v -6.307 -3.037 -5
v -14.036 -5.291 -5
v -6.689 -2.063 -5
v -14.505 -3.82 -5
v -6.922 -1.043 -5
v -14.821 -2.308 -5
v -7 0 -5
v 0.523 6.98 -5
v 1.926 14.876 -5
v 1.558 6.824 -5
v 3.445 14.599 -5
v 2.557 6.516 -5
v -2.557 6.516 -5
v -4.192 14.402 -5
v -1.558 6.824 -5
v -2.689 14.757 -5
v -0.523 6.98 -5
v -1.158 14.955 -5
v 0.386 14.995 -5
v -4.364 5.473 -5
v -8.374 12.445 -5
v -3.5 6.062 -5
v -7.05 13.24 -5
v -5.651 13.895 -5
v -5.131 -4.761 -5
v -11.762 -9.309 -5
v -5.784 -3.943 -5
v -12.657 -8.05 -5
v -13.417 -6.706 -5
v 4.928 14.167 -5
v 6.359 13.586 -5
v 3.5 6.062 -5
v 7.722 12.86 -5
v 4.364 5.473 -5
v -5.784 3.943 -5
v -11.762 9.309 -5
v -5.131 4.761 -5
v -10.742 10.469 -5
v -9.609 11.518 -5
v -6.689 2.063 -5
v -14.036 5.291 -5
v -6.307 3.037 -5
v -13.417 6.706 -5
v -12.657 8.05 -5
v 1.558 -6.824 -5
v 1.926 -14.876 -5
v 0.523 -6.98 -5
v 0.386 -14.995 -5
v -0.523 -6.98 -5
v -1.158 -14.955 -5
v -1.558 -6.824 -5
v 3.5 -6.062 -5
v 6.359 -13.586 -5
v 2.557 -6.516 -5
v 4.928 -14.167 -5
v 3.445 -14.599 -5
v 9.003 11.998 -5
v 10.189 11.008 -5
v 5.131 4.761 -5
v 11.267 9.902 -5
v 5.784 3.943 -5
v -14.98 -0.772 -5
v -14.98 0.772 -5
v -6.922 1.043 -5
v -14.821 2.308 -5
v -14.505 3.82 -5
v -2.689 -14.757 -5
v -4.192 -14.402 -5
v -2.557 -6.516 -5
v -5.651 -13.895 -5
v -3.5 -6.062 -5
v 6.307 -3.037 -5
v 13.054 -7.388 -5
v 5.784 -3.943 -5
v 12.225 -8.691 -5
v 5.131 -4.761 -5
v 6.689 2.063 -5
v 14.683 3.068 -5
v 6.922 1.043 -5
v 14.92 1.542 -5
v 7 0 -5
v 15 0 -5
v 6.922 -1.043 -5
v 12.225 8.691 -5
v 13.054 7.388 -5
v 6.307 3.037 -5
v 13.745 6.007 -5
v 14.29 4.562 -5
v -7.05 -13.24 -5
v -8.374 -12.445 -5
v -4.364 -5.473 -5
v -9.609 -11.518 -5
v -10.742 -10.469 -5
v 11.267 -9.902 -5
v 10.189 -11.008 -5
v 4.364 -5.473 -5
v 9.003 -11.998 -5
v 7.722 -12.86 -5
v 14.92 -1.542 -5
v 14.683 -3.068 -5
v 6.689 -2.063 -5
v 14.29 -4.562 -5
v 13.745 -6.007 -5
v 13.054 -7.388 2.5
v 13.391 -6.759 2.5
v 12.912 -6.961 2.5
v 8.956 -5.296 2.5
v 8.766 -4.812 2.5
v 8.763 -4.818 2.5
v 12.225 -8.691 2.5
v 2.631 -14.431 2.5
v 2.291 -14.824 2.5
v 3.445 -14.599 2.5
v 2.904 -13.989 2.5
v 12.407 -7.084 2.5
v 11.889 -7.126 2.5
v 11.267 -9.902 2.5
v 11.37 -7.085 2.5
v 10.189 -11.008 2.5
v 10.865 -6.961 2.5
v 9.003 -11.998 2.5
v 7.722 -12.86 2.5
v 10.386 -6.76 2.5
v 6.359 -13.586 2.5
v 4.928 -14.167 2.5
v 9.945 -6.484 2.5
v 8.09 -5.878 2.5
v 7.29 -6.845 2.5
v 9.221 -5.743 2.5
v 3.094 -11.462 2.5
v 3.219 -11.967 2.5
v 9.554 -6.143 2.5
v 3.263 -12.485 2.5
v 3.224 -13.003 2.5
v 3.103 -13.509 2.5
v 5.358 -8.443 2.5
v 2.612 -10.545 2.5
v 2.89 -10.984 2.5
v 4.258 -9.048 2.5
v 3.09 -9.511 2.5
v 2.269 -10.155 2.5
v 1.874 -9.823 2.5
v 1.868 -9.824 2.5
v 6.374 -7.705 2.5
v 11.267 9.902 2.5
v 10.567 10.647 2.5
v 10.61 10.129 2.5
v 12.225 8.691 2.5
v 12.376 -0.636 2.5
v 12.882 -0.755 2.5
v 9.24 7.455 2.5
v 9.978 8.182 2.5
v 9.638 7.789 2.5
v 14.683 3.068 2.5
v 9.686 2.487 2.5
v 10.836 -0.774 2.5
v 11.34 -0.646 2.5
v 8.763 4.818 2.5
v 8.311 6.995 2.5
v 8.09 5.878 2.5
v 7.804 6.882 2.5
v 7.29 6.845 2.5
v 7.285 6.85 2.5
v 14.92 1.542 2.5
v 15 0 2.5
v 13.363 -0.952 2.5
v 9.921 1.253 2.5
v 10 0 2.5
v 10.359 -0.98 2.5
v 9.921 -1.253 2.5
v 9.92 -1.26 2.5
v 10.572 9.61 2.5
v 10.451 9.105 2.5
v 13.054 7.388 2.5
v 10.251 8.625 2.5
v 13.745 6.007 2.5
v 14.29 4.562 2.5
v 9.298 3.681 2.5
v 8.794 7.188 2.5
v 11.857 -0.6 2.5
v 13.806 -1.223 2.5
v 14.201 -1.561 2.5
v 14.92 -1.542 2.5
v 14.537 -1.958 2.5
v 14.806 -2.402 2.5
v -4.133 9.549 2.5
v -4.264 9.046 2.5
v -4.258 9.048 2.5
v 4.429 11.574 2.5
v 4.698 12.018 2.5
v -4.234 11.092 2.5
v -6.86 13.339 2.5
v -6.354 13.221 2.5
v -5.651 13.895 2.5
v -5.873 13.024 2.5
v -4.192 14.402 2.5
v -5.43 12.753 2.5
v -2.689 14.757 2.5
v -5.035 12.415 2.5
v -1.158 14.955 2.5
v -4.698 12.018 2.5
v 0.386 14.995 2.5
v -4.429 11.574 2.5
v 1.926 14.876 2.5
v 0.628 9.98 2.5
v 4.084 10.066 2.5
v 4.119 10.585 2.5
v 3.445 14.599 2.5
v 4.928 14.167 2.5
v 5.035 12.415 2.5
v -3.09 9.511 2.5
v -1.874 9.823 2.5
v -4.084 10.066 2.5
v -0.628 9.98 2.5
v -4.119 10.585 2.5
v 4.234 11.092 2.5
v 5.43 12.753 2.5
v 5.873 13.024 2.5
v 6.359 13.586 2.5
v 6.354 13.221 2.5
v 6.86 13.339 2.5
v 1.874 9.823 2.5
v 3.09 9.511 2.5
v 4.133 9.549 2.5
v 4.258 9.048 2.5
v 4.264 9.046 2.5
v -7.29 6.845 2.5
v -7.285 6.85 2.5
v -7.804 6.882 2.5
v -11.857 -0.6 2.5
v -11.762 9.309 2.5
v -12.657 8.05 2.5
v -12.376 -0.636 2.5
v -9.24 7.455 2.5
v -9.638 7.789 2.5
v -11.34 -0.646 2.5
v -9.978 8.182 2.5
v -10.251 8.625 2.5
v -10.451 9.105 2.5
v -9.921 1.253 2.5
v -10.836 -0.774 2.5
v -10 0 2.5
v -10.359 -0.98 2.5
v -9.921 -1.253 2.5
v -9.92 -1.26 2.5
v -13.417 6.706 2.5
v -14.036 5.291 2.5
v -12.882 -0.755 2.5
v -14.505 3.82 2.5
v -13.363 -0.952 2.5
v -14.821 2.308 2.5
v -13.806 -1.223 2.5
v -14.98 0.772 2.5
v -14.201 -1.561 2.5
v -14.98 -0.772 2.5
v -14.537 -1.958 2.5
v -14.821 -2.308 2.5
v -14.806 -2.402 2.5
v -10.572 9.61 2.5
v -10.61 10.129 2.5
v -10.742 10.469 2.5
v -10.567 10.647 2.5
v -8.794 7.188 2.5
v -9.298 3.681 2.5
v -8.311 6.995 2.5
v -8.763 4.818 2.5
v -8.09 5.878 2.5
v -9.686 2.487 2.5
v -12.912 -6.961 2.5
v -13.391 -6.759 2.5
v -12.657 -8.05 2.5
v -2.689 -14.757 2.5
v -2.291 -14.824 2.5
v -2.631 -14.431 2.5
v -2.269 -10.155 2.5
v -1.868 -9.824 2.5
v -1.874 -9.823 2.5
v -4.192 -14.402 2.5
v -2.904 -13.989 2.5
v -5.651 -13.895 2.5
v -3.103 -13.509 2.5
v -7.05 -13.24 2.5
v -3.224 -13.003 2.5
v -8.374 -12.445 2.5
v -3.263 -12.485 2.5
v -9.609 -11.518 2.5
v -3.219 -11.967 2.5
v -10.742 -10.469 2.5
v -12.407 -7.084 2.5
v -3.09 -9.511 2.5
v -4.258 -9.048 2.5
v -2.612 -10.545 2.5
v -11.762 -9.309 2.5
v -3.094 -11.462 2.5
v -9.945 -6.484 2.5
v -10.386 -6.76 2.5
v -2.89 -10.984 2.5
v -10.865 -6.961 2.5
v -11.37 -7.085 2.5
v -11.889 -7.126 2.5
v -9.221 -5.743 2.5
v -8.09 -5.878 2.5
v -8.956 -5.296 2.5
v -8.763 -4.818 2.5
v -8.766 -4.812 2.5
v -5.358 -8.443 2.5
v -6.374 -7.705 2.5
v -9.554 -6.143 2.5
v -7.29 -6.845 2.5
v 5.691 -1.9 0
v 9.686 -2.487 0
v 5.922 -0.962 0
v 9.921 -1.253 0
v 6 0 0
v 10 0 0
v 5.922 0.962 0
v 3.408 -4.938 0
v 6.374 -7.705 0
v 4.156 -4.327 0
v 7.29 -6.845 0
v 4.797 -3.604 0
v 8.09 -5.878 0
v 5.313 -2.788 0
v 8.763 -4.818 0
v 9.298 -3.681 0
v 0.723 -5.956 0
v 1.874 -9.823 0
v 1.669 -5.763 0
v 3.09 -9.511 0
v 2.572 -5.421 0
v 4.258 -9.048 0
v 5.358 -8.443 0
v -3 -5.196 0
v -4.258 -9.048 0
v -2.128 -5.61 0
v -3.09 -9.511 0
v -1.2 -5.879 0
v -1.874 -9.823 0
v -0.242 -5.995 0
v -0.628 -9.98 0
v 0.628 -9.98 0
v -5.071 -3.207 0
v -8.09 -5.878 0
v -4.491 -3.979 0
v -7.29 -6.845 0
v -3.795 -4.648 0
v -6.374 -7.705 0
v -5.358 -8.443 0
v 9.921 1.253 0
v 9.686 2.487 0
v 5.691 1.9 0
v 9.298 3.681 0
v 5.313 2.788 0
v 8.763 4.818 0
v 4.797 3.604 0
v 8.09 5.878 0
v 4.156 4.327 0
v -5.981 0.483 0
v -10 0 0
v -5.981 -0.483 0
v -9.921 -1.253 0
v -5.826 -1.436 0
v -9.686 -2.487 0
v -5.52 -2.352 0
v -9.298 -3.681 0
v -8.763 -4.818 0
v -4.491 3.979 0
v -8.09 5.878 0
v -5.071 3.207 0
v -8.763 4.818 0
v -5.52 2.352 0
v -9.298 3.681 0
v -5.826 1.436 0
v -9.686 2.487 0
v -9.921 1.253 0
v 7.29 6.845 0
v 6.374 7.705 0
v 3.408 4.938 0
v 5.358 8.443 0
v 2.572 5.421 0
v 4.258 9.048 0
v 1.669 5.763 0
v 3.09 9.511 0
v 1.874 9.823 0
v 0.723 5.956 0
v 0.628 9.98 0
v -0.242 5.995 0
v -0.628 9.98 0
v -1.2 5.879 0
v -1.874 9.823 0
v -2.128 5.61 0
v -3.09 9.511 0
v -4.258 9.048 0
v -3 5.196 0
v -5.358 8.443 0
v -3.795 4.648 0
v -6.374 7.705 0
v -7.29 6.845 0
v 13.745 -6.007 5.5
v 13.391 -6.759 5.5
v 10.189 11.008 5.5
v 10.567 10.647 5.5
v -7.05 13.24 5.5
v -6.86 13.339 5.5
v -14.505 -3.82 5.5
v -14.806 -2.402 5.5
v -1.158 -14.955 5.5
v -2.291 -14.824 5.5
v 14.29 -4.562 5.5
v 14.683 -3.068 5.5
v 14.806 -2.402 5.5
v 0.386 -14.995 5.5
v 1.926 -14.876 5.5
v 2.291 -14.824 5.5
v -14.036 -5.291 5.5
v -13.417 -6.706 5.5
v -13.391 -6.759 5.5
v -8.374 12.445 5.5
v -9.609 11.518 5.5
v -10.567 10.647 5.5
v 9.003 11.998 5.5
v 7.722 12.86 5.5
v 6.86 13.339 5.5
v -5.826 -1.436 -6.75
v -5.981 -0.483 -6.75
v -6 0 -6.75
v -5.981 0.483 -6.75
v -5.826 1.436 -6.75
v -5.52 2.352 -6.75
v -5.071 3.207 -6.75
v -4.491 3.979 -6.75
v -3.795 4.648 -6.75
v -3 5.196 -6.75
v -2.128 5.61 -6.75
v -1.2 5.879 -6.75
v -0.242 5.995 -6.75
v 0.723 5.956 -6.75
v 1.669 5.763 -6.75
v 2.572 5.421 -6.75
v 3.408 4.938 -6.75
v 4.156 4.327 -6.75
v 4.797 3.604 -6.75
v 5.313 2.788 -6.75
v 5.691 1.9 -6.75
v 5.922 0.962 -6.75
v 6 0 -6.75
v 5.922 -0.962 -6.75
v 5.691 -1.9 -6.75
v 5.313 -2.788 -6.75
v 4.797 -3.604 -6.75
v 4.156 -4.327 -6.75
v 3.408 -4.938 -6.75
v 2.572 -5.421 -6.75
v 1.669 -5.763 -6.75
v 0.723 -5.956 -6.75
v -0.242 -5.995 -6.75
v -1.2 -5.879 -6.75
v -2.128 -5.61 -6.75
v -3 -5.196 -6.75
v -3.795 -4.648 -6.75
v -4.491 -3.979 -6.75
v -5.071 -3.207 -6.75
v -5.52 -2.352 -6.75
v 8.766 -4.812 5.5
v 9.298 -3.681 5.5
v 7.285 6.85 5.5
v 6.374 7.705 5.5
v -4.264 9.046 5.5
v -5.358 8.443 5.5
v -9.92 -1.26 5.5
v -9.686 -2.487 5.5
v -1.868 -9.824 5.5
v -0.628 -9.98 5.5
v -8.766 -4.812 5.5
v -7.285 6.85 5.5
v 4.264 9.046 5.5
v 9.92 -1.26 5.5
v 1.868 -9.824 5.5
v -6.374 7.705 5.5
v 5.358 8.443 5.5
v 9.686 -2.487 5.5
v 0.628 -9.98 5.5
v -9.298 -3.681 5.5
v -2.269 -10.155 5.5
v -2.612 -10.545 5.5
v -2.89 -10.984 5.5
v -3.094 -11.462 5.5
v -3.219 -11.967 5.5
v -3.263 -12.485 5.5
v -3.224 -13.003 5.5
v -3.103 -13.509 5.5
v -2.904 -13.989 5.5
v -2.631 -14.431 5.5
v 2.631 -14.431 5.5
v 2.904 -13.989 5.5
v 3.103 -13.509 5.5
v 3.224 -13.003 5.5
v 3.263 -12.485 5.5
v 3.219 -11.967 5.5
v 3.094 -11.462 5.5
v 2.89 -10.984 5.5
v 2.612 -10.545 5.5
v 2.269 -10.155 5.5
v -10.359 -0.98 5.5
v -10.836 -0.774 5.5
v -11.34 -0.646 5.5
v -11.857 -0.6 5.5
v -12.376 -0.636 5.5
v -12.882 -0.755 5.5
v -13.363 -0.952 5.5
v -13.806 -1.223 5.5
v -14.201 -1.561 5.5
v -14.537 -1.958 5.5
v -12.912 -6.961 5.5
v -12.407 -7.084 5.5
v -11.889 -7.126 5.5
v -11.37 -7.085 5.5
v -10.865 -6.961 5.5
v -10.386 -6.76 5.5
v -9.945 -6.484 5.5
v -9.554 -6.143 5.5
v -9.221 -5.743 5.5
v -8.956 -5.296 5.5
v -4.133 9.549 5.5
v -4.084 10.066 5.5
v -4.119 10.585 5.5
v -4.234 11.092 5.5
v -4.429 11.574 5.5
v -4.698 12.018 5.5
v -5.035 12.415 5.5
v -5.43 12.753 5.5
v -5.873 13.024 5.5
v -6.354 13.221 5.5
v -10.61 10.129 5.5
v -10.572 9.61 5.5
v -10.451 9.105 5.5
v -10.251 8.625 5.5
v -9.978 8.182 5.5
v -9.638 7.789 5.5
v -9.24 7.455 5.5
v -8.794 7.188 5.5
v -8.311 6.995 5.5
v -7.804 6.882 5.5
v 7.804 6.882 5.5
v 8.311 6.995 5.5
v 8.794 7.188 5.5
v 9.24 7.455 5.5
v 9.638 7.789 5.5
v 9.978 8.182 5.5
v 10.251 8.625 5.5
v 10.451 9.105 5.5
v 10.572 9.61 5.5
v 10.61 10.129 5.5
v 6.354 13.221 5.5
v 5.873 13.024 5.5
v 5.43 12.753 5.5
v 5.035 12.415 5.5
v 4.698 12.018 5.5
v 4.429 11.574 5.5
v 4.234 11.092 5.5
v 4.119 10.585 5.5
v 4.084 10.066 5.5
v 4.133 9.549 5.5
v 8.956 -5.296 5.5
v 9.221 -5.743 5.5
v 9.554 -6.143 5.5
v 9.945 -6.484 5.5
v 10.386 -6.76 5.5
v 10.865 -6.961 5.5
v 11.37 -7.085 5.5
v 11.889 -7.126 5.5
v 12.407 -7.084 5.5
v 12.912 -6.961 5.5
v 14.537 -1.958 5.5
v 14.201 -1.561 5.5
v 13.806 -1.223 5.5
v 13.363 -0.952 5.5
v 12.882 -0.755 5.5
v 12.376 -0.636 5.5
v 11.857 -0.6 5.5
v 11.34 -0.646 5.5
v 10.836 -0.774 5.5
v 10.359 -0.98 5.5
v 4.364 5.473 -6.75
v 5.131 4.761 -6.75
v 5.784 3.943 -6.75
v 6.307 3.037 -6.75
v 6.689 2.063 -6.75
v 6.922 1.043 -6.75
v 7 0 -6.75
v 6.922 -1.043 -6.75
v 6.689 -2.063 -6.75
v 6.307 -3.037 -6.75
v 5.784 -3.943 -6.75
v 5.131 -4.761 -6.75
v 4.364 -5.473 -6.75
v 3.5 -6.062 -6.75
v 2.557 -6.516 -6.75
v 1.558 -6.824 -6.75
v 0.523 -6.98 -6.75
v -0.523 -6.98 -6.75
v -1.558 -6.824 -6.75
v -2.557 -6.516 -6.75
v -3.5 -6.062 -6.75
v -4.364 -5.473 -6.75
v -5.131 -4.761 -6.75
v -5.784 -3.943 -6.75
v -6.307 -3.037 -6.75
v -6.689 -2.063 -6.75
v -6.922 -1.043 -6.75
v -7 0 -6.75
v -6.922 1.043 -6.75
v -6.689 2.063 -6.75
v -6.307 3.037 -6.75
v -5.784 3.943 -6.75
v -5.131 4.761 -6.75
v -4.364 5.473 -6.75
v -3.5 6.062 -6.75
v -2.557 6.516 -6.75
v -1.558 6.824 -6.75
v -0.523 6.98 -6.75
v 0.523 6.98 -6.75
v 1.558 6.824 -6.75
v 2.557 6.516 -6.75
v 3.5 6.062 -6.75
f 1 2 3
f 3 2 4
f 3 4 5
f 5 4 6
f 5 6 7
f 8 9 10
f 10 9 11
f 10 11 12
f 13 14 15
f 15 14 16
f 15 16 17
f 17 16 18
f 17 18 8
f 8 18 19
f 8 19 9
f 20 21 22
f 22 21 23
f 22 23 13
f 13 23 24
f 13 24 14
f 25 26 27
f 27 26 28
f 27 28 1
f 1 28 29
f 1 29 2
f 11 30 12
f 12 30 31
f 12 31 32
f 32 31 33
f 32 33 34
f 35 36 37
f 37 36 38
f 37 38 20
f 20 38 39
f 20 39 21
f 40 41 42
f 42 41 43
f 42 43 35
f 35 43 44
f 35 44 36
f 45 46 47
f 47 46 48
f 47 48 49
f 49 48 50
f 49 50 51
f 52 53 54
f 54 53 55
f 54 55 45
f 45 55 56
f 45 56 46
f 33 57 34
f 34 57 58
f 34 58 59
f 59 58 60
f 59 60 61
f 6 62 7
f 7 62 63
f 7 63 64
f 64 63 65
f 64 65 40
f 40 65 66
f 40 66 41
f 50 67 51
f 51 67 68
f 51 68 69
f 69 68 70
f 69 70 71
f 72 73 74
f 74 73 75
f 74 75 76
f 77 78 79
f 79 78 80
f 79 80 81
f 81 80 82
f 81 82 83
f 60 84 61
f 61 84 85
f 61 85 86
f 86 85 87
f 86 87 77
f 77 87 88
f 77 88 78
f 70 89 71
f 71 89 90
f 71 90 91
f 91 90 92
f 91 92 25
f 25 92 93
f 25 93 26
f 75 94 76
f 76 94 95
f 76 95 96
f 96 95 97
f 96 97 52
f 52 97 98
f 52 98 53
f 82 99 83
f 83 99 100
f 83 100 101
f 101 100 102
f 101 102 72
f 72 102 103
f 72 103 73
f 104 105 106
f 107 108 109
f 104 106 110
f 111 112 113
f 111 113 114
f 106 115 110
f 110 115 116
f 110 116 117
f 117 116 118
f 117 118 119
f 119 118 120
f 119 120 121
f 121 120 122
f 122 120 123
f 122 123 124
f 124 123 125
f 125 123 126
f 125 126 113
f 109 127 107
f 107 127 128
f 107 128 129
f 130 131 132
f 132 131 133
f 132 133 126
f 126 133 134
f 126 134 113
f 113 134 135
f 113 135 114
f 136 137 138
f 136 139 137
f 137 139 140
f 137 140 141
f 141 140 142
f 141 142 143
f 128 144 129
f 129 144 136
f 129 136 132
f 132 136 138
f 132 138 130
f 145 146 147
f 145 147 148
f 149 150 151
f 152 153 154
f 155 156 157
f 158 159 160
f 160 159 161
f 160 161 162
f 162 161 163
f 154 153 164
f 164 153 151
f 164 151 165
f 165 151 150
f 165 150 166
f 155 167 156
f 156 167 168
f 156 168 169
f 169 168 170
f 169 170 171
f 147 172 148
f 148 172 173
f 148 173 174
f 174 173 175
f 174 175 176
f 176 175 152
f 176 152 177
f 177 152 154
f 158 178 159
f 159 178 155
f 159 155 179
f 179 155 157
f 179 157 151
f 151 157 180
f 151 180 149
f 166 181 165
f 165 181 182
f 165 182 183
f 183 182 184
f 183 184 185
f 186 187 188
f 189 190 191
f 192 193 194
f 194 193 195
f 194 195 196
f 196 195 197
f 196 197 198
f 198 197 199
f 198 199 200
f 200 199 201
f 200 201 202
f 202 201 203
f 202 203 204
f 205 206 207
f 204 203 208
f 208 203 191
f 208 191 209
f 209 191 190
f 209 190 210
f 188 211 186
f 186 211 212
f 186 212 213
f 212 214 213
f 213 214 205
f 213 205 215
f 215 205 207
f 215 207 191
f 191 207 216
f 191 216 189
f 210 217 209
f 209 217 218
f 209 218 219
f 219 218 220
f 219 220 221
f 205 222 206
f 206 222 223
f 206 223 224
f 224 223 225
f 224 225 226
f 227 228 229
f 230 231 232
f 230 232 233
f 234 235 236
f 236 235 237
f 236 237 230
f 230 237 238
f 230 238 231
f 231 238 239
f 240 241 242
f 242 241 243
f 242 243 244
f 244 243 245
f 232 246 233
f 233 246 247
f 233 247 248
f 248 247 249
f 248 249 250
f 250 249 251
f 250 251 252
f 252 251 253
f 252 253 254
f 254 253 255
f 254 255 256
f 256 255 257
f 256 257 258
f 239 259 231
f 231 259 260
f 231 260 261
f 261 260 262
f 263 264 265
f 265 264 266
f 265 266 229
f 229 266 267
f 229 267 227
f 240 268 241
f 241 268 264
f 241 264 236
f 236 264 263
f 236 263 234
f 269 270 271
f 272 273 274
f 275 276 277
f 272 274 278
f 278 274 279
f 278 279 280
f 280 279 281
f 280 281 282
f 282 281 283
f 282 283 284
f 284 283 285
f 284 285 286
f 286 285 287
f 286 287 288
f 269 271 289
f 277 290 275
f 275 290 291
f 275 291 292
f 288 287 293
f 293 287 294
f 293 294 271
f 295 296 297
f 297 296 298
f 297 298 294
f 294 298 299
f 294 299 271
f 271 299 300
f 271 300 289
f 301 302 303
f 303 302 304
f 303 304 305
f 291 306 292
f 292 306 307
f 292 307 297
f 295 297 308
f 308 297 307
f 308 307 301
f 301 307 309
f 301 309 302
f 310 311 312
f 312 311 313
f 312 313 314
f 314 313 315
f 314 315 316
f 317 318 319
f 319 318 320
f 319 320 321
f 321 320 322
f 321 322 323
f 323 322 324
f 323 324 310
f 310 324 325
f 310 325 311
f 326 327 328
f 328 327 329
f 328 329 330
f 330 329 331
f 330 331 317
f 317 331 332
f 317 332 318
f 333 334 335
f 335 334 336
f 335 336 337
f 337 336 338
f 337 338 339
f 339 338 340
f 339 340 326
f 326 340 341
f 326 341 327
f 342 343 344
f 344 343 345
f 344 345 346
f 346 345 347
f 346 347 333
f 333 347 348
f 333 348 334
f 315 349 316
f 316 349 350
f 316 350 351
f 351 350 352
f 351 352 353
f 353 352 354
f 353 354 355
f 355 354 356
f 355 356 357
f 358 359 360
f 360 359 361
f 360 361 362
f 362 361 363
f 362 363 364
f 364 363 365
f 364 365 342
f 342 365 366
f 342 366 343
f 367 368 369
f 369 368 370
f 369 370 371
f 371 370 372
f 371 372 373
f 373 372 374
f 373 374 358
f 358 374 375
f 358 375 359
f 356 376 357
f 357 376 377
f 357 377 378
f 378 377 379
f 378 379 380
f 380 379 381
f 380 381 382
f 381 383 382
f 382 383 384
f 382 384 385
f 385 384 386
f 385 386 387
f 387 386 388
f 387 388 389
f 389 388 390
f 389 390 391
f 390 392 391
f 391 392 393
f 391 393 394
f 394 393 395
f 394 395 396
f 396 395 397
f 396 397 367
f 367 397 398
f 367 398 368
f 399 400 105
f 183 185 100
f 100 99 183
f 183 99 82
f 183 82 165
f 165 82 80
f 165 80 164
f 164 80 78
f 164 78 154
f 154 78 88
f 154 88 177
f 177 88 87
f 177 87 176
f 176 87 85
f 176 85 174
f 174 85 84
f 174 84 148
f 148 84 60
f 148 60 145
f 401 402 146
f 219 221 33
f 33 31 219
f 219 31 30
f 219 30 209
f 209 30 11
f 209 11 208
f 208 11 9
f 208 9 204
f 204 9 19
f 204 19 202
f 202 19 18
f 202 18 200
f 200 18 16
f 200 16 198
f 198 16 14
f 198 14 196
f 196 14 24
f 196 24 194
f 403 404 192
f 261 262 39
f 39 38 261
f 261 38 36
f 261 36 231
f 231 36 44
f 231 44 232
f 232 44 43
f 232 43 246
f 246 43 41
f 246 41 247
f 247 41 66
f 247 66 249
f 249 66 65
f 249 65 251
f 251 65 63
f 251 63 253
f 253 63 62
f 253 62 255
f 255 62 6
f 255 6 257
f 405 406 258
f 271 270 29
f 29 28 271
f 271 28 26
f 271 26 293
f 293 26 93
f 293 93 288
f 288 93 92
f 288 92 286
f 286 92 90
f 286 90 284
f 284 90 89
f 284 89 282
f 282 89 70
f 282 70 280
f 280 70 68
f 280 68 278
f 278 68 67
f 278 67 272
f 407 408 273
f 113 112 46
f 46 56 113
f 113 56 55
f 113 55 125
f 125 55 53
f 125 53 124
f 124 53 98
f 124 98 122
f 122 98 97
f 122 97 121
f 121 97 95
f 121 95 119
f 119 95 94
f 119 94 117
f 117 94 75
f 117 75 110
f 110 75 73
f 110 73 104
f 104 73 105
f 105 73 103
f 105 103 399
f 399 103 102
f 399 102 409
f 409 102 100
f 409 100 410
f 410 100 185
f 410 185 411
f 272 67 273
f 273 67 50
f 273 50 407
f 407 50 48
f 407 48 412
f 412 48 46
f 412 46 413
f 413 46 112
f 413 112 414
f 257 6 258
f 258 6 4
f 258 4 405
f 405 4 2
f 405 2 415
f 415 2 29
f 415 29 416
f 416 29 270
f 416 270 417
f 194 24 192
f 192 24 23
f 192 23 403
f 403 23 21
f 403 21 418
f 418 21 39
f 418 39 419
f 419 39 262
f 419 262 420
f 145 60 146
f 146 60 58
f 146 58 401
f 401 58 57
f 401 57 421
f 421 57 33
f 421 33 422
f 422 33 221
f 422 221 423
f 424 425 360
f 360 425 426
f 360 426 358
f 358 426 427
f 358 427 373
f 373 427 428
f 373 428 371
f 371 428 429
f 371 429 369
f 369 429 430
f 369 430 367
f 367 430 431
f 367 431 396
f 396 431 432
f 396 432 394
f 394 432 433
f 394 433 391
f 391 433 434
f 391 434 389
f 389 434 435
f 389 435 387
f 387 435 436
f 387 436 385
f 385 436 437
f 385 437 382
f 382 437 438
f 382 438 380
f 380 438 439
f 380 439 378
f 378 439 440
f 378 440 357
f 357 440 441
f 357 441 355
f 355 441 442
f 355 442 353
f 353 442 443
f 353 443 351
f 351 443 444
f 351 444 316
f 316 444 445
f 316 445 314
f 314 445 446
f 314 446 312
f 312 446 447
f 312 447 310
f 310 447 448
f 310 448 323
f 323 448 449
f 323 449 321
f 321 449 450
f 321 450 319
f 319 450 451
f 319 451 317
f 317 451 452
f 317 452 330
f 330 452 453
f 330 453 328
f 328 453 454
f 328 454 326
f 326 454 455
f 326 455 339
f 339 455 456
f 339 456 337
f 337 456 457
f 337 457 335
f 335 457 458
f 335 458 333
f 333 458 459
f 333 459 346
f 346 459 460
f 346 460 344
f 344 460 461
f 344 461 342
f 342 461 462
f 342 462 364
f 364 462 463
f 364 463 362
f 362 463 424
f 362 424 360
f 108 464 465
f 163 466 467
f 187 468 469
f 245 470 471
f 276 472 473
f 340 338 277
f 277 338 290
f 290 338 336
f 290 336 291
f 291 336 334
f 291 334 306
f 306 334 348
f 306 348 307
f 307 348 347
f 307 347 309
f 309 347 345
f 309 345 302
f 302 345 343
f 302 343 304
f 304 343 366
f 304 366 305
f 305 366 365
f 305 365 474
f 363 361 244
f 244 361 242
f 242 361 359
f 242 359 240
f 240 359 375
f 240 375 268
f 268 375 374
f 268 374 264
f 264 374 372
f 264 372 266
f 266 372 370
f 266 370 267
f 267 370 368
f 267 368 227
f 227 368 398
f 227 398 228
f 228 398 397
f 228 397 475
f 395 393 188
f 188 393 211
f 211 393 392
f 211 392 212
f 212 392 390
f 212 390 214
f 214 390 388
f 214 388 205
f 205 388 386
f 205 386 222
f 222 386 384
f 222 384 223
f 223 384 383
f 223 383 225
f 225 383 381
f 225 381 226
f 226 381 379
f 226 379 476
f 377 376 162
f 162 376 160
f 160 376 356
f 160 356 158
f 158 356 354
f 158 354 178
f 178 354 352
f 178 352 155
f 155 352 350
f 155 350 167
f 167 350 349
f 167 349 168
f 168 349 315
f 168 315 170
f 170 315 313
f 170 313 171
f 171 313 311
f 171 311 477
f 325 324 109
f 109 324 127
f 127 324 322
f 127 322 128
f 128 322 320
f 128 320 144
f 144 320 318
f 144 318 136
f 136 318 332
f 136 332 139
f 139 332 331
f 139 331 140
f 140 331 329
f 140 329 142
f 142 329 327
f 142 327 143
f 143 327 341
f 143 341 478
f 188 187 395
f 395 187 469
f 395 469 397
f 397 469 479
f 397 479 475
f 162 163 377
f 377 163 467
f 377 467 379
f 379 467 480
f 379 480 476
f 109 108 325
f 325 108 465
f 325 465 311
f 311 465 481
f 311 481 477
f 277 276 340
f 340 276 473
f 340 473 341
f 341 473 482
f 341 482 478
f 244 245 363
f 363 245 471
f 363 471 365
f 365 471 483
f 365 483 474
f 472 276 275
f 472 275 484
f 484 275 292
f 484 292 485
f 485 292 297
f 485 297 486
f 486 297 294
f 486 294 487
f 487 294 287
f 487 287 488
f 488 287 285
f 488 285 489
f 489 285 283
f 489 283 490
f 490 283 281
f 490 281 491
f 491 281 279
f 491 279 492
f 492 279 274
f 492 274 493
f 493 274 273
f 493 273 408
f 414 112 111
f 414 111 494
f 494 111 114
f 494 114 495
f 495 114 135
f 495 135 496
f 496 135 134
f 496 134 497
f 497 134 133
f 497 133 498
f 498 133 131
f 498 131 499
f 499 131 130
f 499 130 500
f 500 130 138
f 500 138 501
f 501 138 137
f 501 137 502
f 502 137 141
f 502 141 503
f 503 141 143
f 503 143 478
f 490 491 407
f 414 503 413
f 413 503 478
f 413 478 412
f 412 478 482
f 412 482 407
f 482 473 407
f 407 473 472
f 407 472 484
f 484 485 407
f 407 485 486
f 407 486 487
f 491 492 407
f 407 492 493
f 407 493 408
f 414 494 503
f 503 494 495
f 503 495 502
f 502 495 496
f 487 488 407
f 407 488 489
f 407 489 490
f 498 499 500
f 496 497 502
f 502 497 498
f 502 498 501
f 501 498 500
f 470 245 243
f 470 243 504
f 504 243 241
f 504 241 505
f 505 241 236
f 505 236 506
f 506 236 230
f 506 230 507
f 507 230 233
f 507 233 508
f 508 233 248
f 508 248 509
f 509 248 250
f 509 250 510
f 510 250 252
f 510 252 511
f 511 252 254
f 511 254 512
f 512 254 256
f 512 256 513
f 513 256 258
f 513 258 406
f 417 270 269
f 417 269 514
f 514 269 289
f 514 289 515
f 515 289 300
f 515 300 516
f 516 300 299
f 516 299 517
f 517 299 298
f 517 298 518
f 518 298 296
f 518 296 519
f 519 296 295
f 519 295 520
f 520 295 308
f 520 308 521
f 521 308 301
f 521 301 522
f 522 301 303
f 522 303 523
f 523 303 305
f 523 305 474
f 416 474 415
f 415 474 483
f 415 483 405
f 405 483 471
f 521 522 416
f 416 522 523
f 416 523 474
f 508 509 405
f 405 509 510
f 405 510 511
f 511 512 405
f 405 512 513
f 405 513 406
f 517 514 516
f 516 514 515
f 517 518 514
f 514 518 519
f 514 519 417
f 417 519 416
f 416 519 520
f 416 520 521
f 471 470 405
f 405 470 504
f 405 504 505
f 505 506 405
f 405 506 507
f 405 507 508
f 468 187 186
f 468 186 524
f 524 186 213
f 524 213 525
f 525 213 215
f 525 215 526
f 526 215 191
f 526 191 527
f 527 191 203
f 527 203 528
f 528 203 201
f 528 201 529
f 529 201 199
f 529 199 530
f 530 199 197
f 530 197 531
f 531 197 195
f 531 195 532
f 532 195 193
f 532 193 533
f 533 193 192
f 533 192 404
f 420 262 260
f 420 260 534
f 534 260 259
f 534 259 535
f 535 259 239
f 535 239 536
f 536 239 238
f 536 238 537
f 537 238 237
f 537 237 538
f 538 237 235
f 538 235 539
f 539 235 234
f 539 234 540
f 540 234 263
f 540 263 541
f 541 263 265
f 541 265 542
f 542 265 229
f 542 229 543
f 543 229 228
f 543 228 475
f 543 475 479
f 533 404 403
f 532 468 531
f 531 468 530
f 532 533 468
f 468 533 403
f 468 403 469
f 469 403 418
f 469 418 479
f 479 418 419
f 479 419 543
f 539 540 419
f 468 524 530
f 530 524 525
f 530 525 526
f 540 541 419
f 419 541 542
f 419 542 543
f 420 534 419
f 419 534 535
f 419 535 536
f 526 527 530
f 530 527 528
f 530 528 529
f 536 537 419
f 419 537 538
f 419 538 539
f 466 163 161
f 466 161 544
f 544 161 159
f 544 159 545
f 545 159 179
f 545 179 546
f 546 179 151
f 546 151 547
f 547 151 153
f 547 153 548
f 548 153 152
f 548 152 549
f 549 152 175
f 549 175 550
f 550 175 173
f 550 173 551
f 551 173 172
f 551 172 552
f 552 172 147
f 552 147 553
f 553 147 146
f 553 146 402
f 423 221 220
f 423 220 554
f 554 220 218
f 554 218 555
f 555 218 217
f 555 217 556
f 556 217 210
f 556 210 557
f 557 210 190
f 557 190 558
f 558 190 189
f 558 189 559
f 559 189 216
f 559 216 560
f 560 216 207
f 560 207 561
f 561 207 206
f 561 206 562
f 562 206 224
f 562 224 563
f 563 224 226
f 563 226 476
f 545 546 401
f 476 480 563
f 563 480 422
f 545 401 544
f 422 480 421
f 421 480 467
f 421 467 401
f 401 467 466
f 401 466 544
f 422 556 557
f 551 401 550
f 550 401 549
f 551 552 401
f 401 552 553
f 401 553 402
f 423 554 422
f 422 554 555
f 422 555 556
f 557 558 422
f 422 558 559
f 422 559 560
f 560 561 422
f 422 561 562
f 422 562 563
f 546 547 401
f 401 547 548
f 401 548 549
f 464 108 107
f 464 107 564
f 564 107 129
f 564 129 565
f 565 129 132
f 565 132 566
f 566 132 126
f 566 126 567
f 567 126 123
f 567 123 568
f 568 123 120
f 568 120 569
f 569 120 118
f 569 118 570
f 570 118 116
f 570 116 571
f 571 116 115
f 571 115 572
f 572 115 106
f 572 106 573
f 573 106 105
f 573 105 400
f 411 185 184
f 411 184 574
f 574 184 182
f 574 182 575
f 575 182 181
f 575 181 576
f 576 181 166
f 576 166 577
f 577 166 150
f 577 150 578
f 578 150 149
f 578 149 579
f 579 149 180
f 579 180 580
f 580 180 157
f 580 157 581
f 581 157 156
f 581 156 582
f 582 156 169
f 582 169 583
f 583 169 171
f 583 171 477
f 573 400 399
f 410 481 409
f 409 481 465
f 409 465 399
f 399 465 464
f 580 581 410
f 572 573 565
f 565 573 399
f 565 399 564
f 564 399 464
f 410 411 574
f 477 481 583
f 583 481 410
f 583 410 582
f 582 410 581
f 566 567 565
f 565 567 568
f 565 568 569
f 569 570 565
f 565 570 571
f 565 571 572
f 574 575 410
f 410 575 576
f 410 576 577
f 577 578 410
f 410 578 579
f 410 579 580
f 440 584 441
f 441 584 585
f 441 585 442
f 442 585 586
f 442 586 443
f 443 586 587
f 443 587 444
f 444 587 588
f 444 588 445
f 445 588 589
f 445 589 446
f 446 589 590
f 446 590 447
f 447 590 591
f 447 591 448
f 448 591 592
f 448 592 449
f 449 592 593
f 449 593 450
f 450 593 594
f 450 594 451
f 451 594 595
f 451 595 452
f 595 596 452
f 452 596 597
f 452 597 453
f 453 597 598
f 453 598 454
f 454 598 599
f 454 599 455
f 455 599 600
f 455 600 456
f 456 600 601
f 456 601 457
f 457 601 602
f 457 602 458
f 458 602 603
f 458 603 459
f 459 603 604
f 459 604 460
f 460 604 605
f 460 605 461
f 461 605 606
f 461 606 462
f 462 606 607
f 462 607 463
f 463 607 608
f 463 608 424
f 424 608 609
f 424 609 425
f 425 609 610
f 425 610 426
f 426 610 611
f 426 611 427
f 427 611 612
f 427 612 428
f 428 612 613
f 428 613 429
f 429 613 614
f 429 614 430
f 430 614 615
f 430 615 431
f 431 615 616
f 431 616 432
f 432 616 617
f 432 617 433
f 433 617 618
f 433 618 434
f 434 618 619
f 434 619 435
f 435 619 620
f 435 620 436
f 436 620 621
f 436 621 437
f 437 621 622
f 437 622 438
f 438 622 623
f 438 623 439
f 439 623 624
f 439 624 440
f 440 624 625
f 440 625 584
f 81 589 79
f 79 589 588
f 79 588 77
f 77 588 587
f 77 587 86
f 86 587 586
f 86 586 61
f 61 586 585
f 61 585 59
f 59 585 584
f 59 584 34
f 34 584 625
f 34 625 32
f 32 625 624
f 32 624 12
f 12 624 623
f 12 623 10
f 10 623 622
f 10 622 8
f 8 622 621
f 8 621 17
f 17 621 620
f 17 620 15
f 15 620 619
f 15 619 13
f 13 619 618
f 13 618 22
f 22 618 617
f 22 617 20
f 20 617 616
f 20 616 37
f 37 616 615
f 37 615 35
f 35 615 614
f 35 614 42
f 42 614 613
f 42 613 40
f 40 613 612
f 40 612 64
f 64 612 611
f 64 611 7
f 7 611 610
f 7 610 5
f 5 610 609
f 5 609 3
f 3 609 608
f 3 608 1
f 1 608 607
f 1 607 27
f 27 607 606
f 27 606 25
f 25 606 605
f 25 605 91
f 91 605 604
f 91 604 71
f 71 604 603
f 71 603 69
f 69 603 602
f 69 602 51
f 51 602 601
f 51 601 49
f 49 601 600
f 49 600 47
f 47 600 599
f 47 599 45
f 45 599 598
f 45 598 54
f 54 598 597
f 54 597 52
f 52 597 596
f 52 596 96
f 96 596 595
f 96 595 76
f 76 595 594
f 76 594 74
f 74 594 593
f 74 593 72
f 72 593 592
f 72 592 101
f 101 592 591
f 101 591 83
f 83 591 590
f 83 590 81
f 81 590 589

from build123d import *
from build123d.topology import SkipClean

# Parameters (mm, degrees)
SKETCH1_R           = 15
SKETCH1_R_2         = 10
SKETCH1_R_3         = 6
BOSS_EXTRUDE1_DEPTH = 5
BOSS_EXTRUDE2_START = 2.5
SKETCH2_R           = 15
SKETCH2_R_2         = 10
BOSS_EXTRUDE2_DEPTH = 2.5
BOSS_EXTRUDE4_START = 3
BOSS_EXTRUDE4_DEPTH = 3
SKETCH4_R           = 7
SKETCH4_R_2         = 6
BOSS_EXTRUDE5_DEPTH = 1.75


with BuildPart() as part:
    # Sketch1 → Boss-Extrude1 (new body)
    # profile 1 of 2: a face of its own
    with BuildSketch(Plane.XY):
        Circle(SKETCH1_R)
        Circle(SKETCH1_R_2, mode=Mode.SUBTRACT)
    # profile 2 of 2: a face of its own
    with BuildSketch(Plane.XY):
        Circle(SKETCH1_R_2)
        Circle(SKETCH1_R_3, mode=Mode.SUBTRACT)
    extrude(amount=-BOSS_EXTRUDE1_DEPTH)

    # Sketch2 → Boss-Extrude2 (add)
    with BuildSketch(Plane.XY.offset(BOSS_EXTRUDE2_START)):
        Circle(SKETCH2_R)
        Circle(SKETCH2_R_2, mode=Mode.SUBTRACT)
    extrude(amount=-BOSS_EXTRUDE2_DEPTH)

    # Sketch3 → Boss-Extrude4 (add)
    with SkipClean():  # the faces are left unmerged after this step: merging them gives an invalid solid
        with BuildSketch(Plane.XY.offset(2.5).offset(BOSS_EXTRUDE4_START)):
            with BuildLine():
                ThreePointArc((-2.290603582, -14.824072829), (0, -15), (2.290603582, -14.824072829))
                ThreePointArc((2.290603582, -14.824072829), (3.086155614, -13.560105094), (3.235238064, -12.074072829))
                ThreePointArc((3.235238064, -12.074072829), (2.788392741, -10.80499404), (1.867509855, -9.824072829))
                ThreePointArc((1.867509855, -9.824072829), (0, -10), (-1.867509855, -9.824072829))
                ThreePointArc((-1.867509855, -9.824072829), (-2.788392741, -10.80499404), (-3.235238064, -12.074072829))
                ThreePointArc((-3.235238064, -12.074072829), (-3.086155614, -13.560105094), (-2.290603582, -14.824072829))
            make_face()
            with BuildLine():
                ThreePointArc((-14.806366496, -2.402396967), (-14.265847744, -4.635254916), (-13.390695627, -6.759383893))
                ThreePointArc((-13.390695627, -6.759383893), (-11.942751779, -7.125411327), (-10.483382099, -6.807987938))
                ThreePointArc((-10.483382099, -6.807987938), (-9.414499246, -5.990845869), (-8.766156198, -4.811912875))
                ThreePointArc((-8.766156198, -4.811912875), (-9.510565163, -3.090169944), (-9.920340763, -1.259698041))
                ThreePointArc((-9.920340763, -1.259698041), (-11.137820734, -0.687007696), (-12.482869184, -0.654199453))
                ThreePointArc((-12.482869184, -0.654199453), (-13.850100843, -1.255194512), (-14.806366496, -2.402396967))
            make_face()
            with BuildLine():
                ThreePointArc((-6.860234162, 13.339309849), (-8.816778784, 12.135254916), (-10.566508613, 10.64654384))
                ThreePointArc((-10.566508613, 10.64654384), (-10.467182133, 9.15635871), (-9.714324518, 7.866504888))
                ThreePointArc((-9.714324518, 7.866504888), (-8.606873263, 7.102447672), (-7.285292336, 6.850147121))
                ThreePointArc((-7.285292336, 6.850147121), (-5.877852523, 8.090169944), (-4.263597916, 9.045536624))
                ThreePointArc((-4.263597916, 9.045536624), (-4.095159033, 10.380399934), (-4.479599369, 11.669755331))
                ThreePointArc((-4.479599369, 11.669755331), (-5.473677455, 12.784352223), (-6.860234162, 13.339309849))
            make_face()
            with BuildLine():
                ThreePointArc((10.566508613, 10.64654384), (8.816778784, 12.135254916), (6.860234162, 13.339309849))
                ThreePointArc((6.860234162, 13.339309849), (5.473677455, 12.784352223), (4.479599369, 11.669755331))
                ThreePointArc((4.479599369, 11.669755331), (4.095159033, 10.380399934), (4.263597916, 9.045536624))
                ThreePointArc((4.263597916, 9.045536624), (5.877852523, 8.090169944), (7.285292336, 6.850147121))
                ThreePointArc((7.285292336, 6.850147121), (8.606873263, 7.102447672), (9.714324518, 7.866504888))
                ThreePointArc((9.714324518, 7.866504888), (10.467182133, 9.15635871), (10.566508613, 10.64654384))
            make_face()
            with BuildLine():
                ThreePointArc((13.390695627, -6.759383893), (14.265847744, -4.635254916), (14.806366496, -2.402396967))
                ThreePointArc((14.806366496, -2.402396967), (13.850100843, -1.255194512), (12.482869184, -0.654199453))
                ThreePointArc((12.482869184, -0.654199453), (11.137820734, -0.687007696), (9.920340763, -1.259698041))
                ThreePointArc((9.920340763, -1.259698041), (9.510565163, -3.090169944), (8.766156198, -4.811912875))
                ThreePointArc((8.766156198, -4.811912875), (9.414499246, -5.990845869), (10.483382099, -6.807987938))
                ThreePointArc((10.483382099, -6.807987938), (11.942751779, -7.125411327), (13.390695627, -6.759383893))
            make_face()
        extrude(amount=-BOSS_EXTRUDE4_DEPTH)

    # Sketch4 → Boss-Extrude5 (add)
    with SkipClean():  # the faces are left unmerged after this step: merging them gives an invalid solid
        with BuildSketch(Plane(origin=(0, 0, -5), x_dir=(-1, 0, 0), z_dir=(0, 0, -1))):
            with Locations(Location((0, 0, 0), (0, 0, 180))):
                Circle(SKETCH4_R)
            with Locations(Location((0, 0, 0), (0, 0, 180))):
                Circle(SKETCH4_R_2, mode=Mode.SUBTRACT)
        extrude(amount=BOSS_EXTRUDE5_DEPTH)


solid = part.part
